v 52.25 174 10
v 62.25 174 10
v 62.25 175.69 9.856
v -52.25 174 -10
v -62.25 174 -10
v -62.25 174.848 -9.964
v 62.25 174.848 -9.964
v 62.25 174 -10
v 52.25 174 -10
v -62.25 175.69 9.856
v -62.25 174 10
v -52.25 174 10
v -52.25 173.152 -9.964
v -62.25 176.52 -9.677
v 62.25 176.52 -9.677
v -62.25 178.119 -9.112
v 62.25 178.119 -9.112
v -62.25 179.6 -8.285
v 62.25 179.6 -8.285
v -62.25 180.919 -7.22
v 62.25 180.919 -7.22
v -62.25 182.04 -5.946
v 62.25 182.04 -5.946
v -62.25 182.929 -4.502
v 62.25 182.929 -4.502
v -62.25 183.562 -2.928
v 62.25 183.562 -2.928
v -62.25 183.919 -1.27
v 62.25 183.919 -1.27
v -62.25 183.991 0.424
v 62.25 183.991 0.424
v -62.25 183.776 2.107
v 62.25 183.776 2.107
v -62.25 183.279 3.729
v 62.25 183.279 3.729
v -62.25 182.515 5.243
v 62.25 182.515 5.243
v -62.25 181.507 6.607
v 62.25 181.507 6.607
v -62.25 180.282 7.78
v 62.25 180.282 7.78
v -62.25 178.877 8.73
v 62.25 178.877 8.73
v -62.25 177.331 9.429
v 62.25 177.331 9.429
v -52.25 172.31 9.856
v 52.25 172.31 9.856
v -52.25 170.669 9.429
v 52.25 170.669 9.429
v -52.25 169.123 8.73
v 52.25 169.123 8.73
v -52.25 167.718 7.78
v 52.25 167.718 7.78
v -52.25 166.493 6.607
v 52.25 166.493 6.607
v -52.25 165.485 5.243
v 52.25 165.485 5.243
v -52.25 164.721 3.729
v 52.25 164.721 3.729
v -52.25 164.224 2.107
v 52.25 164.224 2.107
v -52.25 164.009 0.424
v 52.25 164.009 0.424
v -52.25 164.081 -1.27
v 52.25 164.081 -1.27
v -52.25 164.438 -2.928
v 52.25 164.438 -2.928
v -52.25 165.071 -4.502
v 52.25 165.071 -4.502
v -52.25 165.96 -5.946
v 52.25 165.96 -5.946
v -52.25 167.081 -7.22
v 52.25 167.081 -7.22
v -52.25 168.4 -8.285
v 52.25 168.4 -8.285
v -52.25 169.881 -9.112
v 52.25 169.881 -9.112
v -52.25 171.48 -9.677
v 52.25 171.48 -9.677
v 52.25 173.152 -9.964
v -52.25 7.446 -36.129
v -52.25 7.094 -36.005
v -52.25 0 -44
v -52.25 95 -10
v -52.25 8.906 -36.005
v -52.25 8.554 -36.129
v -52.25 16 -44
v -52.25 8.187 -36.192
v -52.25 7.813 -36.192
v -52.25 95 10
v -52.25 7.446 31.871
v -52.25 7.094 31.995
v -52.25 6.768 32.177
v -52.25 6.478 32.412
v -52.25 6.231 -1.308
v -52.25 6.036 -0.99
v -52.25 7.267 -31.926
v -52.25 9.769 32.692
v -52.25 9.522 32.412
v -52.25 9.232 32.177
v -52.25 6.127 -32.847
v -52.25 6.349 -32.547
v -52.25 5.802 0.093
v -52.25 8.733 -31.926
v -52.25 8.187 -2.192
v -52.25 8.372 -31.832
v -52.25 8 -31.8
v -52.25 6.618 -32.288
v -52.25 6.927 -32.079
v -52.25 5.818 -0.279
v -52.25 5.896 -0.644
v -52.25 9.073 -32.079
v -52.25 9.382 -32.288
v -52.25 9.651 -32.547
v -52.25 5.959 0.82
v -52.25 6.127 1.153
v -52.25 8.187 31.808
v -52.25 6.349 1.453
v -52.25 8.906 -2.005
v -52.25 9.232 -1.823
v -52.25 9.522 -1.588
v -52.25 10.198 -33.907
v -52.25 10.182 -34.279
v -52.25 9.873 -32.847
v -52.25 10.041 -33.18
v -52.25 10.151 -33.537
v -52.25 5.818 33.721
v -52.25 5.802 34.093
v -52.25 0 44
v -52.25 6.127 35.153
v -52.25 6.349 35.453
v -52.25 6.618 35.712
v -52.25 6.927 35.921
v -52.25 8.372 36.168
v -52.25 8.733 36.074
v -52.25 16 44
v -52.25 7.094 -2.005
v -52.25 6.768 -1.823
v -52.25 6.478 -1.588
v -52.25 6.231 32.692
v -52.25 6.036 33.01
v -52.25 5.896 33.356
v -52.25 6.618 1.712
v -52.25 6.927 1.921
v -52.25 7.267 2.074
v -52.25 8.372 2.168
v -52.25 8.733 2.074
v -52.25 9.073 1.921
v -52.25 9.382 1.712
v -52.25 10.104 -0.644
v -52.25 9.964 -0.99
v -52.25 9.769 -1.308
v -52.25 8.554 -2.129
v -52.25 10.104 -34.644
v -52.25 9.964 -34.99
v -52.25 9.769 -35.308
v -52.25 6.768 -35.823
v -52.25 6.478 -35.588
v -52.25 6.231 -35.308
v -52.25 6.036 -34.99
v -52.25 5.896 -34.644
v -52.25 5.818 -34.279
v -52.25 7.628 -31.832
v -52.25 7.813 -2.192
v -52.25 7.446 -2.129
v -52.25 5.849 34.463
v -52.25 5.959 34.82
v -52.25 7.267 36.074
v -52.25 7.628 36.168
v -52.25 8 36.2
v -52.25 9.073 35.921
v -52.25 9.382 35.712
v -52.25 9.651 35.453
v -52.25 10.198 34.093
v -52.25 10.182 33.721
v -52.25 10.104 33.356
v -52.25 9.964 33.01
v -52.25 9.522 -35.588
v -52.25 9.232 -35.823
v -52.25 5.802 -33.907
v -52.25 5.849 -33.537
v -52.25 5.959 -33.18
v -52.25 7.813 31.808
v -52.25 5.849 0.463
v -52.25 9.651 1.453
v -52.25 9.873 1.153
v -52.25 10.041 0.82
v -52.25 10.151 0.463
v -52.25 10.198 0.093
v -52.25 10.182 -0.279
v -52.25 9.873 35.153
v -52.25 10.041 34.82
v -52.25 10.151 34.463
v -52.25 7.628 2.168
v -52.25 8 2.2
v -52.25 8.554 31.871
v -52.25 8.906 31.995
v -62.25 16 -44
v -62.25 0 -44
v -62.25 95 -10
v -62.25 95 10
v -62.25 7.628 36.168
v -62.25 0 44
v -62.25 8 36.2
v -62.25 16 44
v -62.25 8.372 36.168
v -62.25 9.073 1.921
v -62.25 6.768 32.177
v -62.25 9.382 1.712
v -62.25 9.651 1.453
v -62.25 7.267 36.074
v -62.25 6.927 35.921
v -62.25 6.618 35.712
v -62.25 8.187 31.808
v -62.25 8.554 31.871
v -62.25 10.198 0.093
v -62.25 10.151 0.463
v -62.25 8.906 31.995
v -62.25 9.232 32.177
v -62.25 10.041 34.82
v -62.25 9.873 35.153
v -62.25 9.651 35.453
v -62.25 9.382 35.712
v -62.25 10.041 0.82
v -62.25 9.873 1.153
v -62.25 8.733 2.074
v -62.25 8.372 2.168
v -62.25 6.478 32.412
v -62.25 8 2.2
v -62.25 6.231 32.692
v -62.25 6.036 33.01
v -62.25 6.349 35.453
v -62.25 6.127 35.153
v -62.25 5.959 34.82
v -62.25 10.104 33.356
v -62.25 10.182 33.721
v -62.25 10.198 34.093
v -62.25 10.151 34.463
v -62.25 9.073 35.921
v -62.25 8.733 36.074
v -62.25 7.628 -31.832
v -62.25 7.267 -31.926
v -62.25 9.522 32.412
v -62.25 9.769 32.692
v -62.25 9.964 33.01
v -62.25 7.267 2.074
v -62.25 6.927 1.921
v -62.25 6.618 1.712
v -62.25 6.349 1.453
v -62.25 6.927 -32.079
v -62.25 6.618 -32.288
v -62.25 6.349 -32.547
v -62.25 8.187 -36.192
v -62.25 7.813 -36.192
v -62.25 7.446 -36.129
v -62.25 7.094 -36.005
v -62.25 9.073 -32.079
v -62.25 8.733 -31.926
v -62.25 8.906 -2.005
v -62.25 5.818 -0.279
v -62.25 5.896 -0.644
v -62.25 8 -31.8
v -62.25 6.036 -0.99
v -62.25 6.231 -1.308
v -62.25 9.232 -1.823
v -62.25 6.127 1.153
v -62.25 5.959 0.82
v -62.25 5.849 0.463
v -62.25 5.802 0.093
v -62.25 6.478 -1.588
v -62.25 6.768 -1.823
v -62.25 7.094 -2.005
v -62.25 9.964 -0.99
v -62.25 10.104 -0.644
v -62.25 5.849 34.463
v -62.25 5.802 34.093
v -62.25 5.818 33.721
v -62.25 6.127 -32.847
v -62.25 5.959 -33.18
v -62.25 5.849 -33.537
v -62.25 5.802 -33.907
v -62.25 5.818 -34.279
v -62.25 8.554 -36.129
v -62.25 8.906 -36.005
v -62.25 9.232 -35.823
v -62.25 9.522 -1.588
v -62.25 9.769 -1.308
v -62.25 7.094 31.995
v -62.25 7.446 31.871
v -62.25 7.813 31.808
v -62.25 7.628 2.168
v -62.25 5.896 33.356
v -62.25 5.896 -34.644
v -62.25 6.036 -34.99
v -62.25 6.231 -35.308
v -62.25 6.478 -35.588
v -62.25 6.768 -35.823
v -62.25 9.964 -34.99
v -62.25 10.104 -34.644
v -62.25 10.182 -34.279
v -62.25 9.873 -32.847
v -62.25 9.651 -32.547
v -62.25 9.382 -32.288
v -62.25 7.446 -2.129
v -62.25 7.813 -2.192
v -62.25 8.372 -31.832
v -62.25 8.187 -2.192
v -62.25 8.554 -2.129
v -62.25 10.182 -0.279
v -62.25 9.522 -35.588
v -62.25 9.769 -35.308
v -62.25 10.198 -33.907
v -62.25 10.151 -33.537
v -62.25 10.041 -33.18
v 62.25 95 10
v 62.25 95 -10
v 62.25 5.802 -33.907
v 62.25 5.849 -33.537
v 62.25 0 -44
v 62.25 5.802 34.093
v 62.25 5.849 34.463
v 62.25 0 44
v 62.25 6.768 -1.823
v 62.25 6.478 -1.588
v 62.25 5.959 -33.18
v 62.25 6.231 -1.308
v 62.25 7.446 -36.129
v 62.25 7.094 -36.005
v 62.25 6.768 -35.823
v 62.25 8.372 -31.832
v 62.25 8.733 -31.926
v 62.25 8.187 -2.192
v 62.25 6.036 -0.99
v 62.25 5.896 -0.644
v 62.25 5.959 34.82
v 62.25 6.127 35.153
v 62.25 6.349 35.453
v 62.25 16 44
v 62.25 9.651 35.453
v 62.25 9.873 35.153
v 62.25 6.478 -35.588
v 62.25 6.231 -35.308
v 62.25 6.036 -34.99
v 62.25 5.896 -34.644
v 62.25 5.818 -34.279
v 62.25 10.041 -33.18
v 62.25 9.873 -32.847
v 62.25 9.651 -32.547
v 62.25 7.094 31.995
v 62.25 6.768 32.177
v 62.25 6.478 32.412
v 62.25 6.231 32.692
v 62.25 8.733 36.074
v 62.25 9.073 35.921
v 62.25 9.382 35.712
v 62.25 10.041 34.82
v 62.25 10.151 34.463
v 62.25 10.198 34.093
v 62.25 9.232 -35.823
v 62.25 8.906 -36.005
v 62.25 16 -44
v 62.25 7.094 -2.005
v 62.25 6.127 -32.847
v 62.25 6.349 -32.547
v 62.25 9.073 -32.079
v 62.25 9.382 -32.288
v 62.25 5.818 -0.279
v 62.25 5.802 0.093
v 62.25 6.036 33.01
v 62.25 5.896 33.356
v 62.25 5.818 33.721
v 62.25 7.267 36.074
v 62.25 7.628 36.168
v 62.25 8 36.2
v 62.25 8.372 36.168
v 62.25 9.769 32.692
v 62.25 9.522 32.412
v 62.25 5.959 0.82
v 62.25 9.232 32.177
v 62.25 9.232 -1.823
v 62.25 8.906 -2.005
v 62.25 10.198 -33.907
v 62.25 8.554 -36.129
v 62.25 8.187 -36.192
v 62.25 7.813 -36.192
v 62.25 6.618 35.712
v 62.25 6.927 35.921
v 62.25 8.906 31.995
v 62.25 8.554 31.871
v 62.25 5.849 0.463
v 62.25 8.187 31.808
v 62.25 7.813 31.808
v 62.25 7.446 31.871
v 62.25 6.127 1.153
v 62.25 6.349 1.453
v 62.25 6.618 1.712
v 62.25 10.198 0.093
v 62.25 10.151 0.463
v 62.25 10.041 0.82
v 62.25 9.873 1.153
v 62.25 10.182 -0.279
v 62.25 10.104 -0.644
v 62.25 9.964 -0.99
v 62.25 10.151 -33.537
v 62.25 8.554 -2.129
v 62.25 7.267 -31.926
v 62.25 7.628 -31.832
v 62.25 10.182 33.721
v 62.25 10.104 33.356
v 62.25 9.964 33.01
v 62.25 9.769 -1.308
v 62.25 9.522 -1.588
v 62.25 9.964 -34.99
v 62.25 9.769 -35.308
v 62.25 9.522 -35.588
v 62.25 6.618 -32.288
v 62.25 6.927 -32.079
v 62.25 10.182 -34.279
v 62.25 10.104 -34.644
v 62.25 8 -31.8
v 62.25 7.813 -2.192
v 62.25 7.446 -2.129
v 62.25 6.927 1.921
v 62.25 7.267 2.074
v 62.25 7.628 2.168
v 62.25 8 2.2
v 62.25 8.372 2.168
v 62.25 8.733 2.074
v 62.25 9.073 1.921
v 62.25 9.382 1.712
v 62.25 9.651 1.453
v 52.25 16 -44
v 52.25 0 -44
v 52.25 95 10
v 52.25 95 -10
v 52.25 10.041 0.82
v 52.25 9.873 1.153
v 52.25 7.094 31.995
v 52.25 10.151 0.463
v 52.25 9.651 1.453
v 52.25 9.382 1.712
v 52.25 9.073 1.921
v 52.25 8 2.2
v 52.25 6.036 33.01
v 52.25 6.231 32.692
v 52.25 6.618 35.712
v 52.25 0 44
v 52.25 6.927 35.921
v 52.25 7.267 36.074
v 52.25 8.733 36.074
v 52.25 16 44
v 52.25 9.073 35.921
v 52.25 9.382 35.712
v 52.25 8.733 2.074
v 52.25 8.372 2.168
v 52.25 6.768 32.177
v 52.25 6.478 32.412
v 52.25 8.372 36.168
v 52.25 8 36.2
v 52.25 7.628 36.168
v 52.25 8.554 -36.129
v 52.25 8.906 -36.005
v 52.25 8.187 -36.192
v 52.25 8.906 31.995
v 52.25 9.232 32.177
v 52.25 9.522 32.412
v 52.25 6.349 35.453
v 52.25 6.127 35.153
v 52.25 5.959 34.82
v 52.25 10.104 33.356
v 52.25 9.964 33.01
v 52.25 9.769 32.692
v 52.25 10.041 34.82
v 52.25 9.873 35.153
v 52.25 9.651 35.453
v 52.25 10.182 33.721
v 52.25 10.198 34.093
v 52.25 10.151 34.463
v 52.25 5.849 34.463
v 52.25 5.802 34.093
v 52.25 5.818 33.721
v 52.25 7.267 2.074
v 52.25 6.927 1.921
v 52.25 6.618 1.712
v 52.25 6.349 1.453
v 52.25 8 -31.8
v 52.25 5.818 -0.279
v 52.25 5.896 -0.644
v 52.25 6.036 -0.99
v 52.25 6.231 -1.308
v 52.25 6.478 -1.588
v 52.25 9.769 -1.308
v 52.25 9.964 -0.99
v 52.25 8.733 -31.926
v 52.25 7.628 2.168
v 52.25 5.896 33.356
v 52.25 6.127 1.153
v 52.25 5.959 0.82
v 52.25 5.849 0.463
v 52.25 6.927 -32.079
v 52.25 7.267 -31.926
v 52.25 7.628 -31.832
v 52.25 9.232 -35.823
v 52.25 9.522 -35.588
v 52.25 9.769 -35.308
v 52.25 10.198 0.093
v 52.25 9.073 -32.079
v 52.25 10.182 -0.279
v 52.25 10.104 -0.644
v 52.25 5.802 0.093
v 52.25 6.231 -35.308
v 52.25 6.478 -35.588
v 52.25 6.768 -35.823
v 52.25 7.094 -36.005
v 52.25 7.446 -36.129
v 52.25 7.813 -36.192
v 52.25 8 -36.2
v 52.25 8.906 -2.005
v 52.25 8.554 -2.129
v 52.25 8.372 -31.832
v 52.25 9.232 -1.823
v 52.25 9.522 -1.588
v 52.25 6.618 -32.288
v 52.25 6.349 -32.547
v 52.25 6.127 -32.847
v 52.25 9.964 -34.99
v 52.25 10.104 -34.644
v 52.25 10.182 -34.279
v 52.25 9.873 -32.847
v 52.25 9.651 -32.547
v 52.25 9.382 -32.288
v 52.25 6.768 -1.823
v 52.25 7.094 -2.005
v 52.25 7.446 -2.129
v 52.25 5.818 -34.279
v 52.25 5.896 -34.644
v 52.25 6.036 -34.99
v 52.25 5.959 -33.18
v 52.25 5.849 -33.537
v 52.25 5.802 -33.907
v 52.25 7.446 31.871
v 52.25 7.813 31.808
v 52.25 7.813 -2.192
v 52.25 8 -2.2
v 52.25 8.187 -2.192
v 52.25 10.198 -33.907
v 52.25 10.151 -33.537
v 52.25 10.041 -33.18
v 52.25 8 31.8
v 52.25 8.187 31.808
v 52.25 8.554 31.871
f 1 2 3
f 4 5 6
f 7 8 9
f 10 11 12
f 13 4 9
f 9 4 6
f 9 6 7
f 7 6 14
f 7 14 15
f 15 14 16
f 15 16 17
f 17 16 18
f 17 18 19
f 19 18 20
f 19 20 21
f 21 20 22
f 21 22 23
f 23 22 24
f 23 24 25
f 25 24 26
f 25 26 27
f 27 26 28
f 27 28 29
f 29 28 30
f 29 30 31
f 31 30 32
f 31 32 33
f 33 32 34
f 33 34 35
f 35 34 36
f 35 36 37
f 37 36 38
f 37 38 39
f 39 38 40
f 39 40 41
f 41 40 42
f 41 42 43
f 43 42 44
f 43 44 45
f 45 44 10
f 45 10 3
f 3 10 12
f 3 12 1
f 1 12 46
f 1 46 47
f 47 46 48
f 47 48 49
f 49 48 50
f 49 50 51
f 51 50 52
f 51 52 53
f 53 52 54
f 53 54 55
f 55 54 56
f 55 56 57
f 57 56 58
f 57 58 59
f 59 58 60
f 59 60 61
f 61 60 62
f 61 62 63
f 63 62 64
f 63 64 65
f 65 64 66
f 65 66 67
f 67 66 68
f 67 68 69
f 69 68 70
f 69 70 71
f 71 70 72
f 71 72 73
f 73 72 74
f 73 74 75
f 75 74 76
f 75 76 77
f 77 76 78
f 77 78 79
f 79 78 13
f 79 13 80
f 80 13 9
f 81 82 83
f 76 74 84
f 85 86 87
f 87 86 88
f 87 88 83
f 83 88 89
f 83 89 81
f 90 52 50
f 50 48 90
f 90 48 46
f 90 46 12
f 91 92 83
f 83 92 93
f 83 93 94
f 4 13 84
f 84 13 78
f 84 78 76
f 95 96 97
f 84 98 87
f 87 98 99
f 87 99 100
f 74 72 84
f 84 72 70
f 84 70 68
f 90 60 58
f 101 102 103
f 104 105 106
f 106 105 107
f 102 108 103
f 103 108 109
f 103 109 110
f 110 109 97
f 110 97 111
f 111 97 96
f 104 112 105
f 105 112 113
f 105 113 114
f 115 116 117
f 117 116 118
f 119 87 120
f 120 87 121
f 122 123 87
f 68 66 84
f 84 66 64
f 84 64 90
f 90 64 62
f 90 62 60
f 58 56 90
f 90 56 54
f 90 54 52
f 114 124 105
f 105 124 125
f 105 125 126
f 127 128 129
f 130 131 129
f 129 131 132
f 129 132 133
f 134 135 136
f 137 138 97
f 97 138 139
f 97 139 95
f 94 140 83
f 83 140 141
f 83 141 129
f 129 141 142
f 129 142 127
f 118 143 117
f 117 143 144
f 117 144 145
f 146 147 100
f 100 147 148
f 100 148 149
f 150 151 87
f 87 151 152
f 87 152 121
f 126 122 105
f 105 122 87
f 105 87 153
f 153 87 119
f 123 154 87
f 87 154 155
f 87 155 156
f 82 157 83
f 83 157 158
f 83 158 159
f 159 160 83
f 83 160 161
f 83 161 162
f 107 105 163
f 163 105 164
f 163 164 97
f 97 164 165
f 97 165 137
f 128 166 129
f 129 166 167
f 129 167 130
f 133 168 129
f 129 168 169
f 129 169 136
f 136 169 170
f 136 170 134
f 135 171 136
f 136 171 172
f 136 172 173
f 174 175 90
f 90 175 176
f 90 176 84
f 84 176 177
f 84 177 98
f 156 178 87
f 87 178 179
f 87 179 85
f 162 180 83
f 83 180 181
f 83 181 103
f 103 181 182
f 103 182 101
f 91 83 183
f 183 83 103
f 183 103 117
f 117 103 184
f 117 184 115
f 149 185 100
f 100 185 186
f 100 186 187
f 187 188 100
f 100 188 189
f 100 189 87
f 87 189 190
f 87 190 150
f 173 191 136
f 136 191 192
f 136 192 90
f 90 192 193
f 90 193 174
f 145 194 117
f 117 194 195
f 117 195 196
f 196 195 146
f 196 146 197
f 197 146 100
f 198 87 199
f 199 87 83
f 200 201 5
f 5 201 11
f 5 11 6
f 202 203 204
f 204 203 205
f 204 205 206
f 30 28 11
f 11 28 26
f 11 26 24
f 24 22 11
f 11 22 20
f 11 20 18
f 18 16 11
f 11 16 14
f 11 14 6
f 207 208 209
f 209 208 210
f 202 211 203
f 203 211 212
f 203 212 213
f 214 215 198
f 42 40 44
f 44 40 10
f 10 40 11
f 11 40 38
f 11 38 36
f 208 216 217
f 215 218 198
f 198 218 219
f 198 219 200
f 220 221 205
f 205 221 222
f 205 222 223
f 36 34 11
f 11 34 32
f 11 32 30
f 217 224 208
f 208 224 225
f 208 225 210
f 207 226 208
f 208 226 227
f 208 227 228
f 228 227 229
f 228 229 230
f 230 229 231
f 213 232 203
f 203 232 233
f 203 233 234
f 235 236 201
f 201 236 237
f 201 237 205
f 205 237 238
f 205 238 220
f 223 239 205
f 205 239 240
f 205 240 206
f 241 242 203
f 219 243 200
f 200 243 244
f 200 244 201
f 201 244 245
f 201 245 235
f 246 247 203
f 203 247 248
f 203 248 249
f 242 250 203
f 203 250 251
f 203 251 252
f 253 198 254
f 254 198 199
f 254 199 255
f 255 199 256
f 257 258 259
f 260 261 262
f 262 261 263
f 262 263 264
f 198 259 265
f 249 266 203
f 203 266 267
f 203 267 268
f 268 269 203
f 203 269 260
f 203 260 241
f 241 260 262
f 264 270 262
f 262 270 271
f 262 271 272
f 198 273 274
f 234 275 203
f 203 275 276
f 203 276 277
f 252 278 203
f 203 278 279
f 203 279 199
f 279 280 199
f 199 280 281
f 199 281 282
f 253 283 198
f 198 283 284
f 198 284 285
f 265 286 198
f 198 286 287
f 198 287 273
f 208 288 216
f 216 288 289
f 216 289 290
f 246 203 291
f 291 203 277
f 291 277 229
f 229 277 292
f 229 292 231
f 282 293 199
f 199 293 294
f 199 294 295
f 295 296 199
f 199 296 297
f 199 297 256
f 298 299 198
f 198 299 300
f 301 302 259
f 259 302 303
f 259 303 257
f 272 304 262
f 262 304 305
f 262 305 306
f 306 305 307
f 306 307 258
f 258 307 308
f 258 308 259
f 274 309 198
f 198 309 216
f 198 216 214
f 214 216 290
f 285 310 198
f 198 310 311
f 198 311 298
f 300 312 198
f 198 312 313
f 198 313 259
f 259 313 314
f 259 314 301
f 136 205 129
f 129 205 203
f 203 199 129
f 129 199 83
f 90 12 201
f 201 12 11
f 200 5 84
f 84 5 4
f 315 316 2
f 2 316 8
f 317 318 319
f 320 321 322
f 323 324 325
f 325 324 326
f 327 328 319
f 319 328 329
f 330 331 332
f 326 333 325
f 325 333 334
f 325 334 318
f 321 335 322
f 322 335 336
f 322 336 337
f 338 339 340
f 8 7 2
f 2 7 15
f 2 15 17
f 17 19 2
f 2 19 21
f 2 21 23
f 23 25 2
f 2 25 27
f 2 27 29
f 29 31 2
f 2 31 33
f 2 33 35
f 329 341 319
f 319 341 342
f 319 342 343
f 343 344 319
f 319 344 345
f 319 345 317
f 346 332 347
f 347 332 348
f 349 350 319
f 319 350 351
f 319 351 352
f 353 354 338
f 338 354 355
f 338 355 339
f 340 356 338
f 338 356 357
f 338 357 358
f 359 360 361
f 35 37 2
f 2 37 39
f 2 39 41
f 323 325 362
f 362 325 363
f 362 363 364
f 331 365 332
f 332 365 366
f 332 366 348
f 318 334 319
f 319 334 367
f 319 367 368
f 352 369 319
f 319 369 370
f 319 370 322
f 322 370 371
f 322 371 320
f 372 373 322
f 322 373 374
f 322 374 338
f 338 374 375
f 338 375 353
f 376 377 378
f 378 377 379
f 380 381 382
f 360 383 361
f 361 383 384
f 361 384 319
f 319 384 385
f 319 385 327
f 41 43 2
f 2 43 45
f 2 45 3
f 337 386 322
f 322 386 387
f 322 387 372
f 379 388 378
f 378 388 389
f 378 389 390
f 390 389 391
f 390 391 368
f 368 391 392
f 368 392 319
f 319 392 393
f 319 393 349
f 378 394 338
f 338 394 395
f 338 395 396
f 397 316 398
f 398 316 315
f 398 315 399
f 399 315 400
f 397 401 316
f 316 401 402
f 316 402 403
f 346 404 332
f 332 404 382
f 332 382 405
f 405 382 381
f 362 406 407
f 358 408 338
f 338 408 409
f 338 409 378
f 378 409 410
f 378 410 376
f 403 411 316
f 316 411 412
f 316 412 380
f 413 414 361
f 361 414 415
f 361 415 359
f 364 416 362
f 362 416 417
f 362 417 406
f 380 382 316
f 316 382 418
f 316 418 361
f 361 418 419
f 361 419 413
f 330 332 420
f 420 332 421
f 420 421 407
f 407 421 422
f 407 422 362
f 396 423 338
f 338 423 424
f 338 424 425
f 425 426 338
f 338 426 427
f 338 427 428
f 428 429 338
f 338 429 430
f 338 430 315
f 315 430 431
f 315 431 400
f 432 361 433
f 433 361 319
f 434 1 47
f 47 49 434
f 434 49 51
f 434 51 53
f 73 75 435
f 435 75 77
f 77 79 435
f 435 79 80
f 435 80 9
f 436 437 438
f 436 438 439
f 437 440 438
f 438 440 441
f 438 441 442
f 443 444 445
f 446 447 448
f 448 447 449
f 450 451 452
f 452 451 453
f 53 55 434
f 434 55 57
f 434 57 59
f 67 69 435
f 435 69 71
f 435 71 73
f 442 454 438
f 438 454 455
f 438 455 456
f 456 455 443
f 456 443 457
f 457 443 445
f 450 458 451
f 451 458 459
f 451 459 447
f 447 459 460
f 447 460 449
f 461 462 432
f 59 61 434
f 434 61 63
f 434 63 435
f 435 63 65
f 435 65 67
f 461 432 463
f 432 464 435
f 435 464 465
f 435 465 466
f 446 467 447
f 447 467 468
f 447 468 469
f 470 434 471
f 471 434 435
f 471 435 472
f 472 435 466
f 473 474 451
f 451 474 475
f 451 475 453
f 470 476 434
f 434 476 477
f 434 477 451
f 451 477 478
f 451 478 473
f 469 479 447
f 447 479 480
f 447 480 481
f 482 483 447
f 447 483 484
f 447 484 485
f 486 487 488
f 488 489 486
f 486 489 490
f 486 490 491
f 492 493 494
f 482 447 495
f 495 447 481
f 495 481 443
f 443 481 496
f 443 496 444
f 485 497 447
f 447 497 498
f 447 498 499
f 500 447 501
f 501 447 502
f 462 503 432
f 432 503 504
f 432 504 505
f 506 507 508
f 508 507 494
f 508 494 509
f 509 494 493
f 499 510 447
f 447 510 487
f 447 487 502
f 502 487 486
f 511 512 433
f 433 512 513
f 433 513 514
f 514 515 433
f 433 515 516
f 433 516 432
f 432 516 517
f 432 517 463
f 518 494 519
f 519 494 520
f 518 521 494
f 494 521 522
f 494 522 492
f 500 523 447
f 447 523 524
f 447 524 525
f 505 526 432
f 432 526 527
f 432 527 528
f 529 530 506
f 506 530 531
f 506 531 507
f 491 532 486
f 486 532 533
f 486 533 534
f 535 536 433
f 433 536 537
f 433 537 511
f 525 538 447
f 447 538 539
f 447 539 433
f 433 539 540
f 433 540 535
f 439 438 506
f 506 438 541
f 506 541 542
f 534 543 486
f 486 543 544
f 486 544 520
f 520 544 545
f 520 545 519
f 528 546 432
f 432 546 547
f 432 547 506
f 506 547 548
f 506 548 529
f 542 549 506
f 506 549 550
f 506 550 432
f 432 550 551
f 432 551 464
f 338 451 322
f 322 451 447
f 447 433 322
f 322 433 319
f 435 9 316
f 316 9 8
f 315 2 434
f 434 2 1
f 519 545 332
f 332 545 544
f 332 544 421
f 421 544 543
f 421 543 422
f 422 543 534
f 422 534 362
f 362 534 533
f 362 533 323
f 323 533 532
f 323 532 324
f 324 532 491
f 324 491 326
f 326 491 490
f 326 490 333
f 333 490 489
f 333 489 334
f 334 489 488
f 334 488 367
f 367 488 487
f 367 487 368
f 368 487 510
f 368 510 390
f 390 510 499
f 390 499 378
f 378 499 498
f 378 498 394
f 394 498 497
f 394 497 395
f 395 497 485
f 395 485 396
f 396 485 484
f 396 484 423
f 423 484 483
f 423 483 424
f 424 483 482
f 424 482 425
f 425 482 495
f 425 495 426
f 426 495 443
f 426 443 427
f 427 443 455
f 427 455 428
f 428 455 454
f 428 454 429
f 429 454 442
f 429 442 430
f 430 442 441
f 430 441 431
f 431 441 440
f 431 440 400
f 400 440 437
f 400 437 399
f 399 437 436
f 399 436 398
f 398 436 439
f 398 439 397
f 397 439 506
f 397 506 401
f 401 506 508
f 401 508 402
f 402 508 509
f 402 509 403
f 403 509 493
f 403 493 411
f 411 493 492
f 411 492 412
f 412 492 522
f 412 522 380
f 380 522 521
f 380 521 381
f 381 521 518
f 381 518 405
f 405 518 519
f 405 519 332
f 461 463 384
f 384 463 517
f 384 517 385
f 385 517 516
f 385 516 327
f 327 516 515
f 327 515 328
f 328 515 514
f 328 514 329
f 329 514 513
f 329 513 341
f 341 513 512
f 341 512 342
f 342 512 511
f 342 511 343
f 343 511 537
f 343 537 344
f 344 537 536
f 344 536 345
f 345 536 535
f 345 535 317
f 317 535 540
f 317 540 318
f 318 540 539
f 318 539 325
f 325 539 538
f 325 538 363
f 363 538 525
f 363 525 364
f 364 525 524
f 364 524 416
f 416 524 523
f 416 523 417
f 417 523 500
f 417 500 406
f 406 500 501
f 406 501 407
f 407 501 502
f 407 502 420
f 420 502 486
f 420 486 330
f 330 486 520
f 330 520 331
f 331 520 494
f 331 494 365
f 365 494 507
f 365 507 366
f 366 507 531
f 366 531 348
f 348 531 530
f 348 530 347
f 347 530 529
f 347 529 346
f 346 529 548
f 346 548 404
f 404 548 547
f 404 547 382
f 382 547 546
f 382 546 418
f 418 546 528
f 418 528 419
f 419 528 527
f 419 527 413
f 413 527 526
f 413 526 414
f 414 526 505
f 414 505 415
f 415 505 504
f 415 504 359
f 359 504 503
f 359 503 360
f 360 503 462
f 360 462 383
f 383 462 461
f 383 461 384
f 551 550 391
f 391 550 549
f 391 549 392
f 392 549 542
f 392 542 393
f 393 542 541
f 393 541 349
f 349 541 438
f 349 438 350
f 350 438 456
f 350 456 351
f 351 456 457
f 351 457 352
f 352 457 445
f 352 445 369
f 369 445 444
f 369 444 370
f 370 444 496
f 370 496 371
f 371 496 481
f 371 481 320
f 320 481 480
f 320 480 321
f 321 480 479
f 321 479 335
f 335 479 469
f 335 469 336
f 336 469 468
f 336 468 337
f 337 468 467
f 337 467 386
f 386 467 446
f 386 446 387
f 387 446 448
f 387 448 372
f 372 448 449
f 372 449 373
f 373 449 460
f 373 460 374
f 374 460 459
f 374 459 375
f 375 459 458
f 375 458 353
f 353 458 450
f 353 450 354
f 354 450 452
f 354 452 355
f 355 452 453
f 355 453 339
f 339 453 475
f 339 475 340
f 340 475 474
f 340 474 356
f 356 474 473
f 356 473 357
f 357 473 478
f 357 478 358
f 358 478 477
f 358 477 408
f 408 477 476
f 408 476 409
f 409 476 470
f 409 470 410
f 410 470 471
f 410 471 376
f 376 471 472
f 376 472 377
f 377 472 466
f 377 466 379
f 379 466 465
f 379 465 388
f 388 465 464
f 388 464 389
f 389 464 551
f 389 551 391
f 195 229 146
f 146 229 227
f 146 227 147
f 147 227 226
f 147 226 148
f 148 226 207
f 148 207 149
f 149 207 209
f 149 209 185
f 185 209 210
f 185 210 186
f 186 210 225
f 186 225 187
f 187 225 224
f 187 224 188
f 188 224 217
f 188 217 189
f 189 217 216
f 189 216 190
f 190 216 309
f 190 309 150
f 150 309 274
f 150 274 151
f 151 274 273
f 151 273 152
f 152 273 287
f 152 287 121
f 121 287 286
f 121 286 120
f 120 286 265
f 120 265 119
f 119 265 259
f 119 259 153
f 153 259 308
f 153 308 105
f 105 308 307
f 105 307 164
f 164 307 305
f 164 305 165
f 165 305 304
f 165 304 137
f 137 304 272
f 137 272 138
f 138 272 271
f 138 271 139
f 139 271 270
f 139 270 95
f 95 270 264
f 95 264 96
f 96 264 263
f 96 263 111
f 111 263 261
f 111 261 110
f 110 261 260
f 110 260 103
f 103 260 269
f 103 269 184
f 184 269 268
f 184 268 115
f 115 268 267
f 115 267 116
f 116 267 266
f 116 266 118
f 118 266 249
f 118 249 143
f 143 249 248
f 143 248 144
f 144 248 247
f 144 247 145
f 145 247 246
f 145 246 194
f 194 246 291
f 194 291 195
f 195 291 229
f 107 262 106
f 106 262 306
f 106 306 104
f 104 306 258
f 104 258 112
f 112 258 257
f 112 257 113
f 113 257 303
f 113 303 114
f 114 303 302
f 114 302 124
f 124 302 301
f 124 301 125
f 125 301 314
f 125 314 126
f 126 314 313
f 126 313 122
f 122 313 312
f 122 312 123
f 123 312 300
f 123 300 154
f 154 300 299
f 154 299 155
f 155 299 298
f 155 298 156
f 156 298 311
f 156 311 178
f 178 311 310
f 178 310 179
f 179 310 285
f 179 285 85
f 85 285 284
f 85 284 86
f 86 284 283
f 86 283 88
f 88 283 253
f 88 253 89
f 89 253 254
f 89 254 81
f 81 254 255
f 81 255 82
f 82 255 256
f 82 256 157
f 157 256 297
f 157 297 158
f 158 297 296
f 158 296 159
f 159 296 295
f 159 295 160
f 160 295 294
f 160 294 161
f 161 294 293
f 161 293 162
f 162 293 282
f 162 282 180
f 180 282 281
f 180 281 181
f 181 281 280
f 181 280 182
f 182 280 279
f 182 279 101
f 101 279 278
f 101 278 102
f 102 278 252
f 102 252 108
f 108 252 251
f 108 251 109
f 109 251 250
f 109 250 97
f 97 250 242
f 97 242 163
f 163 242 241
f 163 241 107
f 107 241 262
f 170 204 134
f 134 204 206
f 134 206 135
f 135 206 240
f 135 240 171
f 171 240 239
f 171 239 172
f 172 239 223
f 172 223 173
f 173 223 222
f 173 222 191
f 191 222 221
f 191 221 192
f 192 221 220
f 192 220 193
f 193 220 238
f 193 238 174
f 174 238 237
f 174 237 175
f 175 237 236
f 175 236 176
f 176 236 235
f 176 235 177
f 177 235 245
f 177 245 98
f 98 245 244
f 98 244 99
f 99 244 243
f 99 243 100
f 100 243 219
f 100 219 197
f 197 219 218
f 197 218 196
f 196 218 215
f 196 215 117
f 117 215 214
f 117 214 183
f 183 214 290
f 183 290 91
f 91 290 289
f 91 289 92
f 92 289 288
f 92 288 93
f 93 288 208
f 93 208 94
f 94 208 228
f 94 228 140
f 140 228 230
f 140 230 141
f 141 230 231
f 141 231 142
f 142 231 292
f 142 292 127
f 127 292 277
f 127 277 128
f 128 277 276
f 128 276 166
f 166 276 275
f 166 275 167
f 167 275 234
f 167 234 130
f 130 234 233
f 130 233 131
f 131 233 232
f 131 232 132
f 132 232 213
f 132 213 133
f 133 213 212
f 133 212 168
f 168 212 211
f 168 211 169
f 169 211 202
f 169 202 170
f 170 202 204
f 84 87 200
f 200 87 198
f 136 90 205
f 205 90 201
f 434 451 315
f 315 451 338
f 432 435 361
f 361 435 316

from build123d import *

# Parameters (mm, degrees)
SKETCH_2_W          = 10
SKETCH_2_H          = 88
EXTRUDE_1_DEPTH     = 16
EXTRUDE_1_2_DEPTH   = 16
SKETCH_3_W          = 10
SKETCH_3_H          = 20
EXTRUDE_2_DEPTH     = 158
SKETCH_4_R          = 10
EXTRUDE_3_DEPTH     = 124.5
SKETCH_5_R          = 2.2
CUT_EXTRUDE_1_DEPTH = 126
EXTRUDE_4_DEPTH     = 10
EXTRUDE_5_DEPTH     = 10


with BuildPart() as part:
    # 草图2 → 凸台-拉伸1 (new body)
    with BuildSketch(Plane(origin=(0, 0, 0), x_dir=(1, 0, 0), z_dir=(0, 1, 0))):
        with Locations((-57.25, 0)):
            Rectangle(SKETCH_2_W, SKETCH_2_H)
    extrude(amount=EXTRUDE_1_DEPTH)



with BuildPart() as body_2:
    # 草图2 → Extrude 1 2 (new body)
    with BuildSketch(Plane(origin=(0, 0, 0), x_dir=(1, 0, 0), z_dir=(0, 1, 0))):
        with Locations((57.25, 0)):
            Rectangle(SKETCH_2_W, SKETCH_2_H)
    extrude(amount=EXTRUDE_1_2_DEPTH)


with BuildPart() as part_1:
    add(part.part)

    add(body_2.part)  # 凸台-拉伸2 merges body 2
    # 草图3 → 凸台-拉伸2 (add)
    with BuildSketch(Plane(origin=(0, 16, 0), x_dir=(1, 0, 0), z_dir=(0, 1, 0))):
        with Locations((-57.25, 0)):
            Rectangle(SKETCH_3_W, SKETCH_3_H)
        with Locations((57.25, 0)):
            Rectangle(SKETCH_3_W, SKETCH_3_H)
    extrude(amount=EXTRUDE_2_DEPTH)

    # 草图4 → 凸台-拉伸3 (add)
    with BuildSketch(Plane.ZY.offset(62.25)):
        with Locations((0, 174)):
            Circle(SKETCH_4_R)
    extrude(amount=-EXTRUDE_3_DEPTH)

    # 草图5 → 切除-拉伸1 (cut)
    with BuildSketch(Plane.ZY.offset(62.25)):
        with Locations((0, 8)):
            Circle(SKETCH_5_R)
        with Locations((-34, 8)):
            Circle(SKETCH_5_R)
        with Locations((34, 8)):
            Circle(SKETCH_5_R)
    extrude(amount=-CUT_EXTRUDE_1_DEPTH, mode=Mode.SUBTRACT)

    # 草图6 → 凸台-拉伸4 (add)
    with BuildSketch(Plane.ZY.offset(62.25)):
        Polygon((-44, 16), (-10, 95), (-10, 16), align=None)
        Polygon((44, 16), (10, 95), (10, 16), align=None)
    extrude(amount=-EXTRUDE_4_DEPTH)

    # 草图7 → 凸台-拉伸5 (add)
    with BuildSketch(Plane(origin=(62.25, 0, 0), x_dir=(0, 0, -1), z_dir=(1, 0, 0))):
        Polygon((-44, 16), (-10, 95), (-10, 16), align=None)
        Polygon((44, 16), (10, 95), (10, 16), align=None)
    extrude(amount=-EXTRUDE_5_DEPTH)


solid = part_1.part
